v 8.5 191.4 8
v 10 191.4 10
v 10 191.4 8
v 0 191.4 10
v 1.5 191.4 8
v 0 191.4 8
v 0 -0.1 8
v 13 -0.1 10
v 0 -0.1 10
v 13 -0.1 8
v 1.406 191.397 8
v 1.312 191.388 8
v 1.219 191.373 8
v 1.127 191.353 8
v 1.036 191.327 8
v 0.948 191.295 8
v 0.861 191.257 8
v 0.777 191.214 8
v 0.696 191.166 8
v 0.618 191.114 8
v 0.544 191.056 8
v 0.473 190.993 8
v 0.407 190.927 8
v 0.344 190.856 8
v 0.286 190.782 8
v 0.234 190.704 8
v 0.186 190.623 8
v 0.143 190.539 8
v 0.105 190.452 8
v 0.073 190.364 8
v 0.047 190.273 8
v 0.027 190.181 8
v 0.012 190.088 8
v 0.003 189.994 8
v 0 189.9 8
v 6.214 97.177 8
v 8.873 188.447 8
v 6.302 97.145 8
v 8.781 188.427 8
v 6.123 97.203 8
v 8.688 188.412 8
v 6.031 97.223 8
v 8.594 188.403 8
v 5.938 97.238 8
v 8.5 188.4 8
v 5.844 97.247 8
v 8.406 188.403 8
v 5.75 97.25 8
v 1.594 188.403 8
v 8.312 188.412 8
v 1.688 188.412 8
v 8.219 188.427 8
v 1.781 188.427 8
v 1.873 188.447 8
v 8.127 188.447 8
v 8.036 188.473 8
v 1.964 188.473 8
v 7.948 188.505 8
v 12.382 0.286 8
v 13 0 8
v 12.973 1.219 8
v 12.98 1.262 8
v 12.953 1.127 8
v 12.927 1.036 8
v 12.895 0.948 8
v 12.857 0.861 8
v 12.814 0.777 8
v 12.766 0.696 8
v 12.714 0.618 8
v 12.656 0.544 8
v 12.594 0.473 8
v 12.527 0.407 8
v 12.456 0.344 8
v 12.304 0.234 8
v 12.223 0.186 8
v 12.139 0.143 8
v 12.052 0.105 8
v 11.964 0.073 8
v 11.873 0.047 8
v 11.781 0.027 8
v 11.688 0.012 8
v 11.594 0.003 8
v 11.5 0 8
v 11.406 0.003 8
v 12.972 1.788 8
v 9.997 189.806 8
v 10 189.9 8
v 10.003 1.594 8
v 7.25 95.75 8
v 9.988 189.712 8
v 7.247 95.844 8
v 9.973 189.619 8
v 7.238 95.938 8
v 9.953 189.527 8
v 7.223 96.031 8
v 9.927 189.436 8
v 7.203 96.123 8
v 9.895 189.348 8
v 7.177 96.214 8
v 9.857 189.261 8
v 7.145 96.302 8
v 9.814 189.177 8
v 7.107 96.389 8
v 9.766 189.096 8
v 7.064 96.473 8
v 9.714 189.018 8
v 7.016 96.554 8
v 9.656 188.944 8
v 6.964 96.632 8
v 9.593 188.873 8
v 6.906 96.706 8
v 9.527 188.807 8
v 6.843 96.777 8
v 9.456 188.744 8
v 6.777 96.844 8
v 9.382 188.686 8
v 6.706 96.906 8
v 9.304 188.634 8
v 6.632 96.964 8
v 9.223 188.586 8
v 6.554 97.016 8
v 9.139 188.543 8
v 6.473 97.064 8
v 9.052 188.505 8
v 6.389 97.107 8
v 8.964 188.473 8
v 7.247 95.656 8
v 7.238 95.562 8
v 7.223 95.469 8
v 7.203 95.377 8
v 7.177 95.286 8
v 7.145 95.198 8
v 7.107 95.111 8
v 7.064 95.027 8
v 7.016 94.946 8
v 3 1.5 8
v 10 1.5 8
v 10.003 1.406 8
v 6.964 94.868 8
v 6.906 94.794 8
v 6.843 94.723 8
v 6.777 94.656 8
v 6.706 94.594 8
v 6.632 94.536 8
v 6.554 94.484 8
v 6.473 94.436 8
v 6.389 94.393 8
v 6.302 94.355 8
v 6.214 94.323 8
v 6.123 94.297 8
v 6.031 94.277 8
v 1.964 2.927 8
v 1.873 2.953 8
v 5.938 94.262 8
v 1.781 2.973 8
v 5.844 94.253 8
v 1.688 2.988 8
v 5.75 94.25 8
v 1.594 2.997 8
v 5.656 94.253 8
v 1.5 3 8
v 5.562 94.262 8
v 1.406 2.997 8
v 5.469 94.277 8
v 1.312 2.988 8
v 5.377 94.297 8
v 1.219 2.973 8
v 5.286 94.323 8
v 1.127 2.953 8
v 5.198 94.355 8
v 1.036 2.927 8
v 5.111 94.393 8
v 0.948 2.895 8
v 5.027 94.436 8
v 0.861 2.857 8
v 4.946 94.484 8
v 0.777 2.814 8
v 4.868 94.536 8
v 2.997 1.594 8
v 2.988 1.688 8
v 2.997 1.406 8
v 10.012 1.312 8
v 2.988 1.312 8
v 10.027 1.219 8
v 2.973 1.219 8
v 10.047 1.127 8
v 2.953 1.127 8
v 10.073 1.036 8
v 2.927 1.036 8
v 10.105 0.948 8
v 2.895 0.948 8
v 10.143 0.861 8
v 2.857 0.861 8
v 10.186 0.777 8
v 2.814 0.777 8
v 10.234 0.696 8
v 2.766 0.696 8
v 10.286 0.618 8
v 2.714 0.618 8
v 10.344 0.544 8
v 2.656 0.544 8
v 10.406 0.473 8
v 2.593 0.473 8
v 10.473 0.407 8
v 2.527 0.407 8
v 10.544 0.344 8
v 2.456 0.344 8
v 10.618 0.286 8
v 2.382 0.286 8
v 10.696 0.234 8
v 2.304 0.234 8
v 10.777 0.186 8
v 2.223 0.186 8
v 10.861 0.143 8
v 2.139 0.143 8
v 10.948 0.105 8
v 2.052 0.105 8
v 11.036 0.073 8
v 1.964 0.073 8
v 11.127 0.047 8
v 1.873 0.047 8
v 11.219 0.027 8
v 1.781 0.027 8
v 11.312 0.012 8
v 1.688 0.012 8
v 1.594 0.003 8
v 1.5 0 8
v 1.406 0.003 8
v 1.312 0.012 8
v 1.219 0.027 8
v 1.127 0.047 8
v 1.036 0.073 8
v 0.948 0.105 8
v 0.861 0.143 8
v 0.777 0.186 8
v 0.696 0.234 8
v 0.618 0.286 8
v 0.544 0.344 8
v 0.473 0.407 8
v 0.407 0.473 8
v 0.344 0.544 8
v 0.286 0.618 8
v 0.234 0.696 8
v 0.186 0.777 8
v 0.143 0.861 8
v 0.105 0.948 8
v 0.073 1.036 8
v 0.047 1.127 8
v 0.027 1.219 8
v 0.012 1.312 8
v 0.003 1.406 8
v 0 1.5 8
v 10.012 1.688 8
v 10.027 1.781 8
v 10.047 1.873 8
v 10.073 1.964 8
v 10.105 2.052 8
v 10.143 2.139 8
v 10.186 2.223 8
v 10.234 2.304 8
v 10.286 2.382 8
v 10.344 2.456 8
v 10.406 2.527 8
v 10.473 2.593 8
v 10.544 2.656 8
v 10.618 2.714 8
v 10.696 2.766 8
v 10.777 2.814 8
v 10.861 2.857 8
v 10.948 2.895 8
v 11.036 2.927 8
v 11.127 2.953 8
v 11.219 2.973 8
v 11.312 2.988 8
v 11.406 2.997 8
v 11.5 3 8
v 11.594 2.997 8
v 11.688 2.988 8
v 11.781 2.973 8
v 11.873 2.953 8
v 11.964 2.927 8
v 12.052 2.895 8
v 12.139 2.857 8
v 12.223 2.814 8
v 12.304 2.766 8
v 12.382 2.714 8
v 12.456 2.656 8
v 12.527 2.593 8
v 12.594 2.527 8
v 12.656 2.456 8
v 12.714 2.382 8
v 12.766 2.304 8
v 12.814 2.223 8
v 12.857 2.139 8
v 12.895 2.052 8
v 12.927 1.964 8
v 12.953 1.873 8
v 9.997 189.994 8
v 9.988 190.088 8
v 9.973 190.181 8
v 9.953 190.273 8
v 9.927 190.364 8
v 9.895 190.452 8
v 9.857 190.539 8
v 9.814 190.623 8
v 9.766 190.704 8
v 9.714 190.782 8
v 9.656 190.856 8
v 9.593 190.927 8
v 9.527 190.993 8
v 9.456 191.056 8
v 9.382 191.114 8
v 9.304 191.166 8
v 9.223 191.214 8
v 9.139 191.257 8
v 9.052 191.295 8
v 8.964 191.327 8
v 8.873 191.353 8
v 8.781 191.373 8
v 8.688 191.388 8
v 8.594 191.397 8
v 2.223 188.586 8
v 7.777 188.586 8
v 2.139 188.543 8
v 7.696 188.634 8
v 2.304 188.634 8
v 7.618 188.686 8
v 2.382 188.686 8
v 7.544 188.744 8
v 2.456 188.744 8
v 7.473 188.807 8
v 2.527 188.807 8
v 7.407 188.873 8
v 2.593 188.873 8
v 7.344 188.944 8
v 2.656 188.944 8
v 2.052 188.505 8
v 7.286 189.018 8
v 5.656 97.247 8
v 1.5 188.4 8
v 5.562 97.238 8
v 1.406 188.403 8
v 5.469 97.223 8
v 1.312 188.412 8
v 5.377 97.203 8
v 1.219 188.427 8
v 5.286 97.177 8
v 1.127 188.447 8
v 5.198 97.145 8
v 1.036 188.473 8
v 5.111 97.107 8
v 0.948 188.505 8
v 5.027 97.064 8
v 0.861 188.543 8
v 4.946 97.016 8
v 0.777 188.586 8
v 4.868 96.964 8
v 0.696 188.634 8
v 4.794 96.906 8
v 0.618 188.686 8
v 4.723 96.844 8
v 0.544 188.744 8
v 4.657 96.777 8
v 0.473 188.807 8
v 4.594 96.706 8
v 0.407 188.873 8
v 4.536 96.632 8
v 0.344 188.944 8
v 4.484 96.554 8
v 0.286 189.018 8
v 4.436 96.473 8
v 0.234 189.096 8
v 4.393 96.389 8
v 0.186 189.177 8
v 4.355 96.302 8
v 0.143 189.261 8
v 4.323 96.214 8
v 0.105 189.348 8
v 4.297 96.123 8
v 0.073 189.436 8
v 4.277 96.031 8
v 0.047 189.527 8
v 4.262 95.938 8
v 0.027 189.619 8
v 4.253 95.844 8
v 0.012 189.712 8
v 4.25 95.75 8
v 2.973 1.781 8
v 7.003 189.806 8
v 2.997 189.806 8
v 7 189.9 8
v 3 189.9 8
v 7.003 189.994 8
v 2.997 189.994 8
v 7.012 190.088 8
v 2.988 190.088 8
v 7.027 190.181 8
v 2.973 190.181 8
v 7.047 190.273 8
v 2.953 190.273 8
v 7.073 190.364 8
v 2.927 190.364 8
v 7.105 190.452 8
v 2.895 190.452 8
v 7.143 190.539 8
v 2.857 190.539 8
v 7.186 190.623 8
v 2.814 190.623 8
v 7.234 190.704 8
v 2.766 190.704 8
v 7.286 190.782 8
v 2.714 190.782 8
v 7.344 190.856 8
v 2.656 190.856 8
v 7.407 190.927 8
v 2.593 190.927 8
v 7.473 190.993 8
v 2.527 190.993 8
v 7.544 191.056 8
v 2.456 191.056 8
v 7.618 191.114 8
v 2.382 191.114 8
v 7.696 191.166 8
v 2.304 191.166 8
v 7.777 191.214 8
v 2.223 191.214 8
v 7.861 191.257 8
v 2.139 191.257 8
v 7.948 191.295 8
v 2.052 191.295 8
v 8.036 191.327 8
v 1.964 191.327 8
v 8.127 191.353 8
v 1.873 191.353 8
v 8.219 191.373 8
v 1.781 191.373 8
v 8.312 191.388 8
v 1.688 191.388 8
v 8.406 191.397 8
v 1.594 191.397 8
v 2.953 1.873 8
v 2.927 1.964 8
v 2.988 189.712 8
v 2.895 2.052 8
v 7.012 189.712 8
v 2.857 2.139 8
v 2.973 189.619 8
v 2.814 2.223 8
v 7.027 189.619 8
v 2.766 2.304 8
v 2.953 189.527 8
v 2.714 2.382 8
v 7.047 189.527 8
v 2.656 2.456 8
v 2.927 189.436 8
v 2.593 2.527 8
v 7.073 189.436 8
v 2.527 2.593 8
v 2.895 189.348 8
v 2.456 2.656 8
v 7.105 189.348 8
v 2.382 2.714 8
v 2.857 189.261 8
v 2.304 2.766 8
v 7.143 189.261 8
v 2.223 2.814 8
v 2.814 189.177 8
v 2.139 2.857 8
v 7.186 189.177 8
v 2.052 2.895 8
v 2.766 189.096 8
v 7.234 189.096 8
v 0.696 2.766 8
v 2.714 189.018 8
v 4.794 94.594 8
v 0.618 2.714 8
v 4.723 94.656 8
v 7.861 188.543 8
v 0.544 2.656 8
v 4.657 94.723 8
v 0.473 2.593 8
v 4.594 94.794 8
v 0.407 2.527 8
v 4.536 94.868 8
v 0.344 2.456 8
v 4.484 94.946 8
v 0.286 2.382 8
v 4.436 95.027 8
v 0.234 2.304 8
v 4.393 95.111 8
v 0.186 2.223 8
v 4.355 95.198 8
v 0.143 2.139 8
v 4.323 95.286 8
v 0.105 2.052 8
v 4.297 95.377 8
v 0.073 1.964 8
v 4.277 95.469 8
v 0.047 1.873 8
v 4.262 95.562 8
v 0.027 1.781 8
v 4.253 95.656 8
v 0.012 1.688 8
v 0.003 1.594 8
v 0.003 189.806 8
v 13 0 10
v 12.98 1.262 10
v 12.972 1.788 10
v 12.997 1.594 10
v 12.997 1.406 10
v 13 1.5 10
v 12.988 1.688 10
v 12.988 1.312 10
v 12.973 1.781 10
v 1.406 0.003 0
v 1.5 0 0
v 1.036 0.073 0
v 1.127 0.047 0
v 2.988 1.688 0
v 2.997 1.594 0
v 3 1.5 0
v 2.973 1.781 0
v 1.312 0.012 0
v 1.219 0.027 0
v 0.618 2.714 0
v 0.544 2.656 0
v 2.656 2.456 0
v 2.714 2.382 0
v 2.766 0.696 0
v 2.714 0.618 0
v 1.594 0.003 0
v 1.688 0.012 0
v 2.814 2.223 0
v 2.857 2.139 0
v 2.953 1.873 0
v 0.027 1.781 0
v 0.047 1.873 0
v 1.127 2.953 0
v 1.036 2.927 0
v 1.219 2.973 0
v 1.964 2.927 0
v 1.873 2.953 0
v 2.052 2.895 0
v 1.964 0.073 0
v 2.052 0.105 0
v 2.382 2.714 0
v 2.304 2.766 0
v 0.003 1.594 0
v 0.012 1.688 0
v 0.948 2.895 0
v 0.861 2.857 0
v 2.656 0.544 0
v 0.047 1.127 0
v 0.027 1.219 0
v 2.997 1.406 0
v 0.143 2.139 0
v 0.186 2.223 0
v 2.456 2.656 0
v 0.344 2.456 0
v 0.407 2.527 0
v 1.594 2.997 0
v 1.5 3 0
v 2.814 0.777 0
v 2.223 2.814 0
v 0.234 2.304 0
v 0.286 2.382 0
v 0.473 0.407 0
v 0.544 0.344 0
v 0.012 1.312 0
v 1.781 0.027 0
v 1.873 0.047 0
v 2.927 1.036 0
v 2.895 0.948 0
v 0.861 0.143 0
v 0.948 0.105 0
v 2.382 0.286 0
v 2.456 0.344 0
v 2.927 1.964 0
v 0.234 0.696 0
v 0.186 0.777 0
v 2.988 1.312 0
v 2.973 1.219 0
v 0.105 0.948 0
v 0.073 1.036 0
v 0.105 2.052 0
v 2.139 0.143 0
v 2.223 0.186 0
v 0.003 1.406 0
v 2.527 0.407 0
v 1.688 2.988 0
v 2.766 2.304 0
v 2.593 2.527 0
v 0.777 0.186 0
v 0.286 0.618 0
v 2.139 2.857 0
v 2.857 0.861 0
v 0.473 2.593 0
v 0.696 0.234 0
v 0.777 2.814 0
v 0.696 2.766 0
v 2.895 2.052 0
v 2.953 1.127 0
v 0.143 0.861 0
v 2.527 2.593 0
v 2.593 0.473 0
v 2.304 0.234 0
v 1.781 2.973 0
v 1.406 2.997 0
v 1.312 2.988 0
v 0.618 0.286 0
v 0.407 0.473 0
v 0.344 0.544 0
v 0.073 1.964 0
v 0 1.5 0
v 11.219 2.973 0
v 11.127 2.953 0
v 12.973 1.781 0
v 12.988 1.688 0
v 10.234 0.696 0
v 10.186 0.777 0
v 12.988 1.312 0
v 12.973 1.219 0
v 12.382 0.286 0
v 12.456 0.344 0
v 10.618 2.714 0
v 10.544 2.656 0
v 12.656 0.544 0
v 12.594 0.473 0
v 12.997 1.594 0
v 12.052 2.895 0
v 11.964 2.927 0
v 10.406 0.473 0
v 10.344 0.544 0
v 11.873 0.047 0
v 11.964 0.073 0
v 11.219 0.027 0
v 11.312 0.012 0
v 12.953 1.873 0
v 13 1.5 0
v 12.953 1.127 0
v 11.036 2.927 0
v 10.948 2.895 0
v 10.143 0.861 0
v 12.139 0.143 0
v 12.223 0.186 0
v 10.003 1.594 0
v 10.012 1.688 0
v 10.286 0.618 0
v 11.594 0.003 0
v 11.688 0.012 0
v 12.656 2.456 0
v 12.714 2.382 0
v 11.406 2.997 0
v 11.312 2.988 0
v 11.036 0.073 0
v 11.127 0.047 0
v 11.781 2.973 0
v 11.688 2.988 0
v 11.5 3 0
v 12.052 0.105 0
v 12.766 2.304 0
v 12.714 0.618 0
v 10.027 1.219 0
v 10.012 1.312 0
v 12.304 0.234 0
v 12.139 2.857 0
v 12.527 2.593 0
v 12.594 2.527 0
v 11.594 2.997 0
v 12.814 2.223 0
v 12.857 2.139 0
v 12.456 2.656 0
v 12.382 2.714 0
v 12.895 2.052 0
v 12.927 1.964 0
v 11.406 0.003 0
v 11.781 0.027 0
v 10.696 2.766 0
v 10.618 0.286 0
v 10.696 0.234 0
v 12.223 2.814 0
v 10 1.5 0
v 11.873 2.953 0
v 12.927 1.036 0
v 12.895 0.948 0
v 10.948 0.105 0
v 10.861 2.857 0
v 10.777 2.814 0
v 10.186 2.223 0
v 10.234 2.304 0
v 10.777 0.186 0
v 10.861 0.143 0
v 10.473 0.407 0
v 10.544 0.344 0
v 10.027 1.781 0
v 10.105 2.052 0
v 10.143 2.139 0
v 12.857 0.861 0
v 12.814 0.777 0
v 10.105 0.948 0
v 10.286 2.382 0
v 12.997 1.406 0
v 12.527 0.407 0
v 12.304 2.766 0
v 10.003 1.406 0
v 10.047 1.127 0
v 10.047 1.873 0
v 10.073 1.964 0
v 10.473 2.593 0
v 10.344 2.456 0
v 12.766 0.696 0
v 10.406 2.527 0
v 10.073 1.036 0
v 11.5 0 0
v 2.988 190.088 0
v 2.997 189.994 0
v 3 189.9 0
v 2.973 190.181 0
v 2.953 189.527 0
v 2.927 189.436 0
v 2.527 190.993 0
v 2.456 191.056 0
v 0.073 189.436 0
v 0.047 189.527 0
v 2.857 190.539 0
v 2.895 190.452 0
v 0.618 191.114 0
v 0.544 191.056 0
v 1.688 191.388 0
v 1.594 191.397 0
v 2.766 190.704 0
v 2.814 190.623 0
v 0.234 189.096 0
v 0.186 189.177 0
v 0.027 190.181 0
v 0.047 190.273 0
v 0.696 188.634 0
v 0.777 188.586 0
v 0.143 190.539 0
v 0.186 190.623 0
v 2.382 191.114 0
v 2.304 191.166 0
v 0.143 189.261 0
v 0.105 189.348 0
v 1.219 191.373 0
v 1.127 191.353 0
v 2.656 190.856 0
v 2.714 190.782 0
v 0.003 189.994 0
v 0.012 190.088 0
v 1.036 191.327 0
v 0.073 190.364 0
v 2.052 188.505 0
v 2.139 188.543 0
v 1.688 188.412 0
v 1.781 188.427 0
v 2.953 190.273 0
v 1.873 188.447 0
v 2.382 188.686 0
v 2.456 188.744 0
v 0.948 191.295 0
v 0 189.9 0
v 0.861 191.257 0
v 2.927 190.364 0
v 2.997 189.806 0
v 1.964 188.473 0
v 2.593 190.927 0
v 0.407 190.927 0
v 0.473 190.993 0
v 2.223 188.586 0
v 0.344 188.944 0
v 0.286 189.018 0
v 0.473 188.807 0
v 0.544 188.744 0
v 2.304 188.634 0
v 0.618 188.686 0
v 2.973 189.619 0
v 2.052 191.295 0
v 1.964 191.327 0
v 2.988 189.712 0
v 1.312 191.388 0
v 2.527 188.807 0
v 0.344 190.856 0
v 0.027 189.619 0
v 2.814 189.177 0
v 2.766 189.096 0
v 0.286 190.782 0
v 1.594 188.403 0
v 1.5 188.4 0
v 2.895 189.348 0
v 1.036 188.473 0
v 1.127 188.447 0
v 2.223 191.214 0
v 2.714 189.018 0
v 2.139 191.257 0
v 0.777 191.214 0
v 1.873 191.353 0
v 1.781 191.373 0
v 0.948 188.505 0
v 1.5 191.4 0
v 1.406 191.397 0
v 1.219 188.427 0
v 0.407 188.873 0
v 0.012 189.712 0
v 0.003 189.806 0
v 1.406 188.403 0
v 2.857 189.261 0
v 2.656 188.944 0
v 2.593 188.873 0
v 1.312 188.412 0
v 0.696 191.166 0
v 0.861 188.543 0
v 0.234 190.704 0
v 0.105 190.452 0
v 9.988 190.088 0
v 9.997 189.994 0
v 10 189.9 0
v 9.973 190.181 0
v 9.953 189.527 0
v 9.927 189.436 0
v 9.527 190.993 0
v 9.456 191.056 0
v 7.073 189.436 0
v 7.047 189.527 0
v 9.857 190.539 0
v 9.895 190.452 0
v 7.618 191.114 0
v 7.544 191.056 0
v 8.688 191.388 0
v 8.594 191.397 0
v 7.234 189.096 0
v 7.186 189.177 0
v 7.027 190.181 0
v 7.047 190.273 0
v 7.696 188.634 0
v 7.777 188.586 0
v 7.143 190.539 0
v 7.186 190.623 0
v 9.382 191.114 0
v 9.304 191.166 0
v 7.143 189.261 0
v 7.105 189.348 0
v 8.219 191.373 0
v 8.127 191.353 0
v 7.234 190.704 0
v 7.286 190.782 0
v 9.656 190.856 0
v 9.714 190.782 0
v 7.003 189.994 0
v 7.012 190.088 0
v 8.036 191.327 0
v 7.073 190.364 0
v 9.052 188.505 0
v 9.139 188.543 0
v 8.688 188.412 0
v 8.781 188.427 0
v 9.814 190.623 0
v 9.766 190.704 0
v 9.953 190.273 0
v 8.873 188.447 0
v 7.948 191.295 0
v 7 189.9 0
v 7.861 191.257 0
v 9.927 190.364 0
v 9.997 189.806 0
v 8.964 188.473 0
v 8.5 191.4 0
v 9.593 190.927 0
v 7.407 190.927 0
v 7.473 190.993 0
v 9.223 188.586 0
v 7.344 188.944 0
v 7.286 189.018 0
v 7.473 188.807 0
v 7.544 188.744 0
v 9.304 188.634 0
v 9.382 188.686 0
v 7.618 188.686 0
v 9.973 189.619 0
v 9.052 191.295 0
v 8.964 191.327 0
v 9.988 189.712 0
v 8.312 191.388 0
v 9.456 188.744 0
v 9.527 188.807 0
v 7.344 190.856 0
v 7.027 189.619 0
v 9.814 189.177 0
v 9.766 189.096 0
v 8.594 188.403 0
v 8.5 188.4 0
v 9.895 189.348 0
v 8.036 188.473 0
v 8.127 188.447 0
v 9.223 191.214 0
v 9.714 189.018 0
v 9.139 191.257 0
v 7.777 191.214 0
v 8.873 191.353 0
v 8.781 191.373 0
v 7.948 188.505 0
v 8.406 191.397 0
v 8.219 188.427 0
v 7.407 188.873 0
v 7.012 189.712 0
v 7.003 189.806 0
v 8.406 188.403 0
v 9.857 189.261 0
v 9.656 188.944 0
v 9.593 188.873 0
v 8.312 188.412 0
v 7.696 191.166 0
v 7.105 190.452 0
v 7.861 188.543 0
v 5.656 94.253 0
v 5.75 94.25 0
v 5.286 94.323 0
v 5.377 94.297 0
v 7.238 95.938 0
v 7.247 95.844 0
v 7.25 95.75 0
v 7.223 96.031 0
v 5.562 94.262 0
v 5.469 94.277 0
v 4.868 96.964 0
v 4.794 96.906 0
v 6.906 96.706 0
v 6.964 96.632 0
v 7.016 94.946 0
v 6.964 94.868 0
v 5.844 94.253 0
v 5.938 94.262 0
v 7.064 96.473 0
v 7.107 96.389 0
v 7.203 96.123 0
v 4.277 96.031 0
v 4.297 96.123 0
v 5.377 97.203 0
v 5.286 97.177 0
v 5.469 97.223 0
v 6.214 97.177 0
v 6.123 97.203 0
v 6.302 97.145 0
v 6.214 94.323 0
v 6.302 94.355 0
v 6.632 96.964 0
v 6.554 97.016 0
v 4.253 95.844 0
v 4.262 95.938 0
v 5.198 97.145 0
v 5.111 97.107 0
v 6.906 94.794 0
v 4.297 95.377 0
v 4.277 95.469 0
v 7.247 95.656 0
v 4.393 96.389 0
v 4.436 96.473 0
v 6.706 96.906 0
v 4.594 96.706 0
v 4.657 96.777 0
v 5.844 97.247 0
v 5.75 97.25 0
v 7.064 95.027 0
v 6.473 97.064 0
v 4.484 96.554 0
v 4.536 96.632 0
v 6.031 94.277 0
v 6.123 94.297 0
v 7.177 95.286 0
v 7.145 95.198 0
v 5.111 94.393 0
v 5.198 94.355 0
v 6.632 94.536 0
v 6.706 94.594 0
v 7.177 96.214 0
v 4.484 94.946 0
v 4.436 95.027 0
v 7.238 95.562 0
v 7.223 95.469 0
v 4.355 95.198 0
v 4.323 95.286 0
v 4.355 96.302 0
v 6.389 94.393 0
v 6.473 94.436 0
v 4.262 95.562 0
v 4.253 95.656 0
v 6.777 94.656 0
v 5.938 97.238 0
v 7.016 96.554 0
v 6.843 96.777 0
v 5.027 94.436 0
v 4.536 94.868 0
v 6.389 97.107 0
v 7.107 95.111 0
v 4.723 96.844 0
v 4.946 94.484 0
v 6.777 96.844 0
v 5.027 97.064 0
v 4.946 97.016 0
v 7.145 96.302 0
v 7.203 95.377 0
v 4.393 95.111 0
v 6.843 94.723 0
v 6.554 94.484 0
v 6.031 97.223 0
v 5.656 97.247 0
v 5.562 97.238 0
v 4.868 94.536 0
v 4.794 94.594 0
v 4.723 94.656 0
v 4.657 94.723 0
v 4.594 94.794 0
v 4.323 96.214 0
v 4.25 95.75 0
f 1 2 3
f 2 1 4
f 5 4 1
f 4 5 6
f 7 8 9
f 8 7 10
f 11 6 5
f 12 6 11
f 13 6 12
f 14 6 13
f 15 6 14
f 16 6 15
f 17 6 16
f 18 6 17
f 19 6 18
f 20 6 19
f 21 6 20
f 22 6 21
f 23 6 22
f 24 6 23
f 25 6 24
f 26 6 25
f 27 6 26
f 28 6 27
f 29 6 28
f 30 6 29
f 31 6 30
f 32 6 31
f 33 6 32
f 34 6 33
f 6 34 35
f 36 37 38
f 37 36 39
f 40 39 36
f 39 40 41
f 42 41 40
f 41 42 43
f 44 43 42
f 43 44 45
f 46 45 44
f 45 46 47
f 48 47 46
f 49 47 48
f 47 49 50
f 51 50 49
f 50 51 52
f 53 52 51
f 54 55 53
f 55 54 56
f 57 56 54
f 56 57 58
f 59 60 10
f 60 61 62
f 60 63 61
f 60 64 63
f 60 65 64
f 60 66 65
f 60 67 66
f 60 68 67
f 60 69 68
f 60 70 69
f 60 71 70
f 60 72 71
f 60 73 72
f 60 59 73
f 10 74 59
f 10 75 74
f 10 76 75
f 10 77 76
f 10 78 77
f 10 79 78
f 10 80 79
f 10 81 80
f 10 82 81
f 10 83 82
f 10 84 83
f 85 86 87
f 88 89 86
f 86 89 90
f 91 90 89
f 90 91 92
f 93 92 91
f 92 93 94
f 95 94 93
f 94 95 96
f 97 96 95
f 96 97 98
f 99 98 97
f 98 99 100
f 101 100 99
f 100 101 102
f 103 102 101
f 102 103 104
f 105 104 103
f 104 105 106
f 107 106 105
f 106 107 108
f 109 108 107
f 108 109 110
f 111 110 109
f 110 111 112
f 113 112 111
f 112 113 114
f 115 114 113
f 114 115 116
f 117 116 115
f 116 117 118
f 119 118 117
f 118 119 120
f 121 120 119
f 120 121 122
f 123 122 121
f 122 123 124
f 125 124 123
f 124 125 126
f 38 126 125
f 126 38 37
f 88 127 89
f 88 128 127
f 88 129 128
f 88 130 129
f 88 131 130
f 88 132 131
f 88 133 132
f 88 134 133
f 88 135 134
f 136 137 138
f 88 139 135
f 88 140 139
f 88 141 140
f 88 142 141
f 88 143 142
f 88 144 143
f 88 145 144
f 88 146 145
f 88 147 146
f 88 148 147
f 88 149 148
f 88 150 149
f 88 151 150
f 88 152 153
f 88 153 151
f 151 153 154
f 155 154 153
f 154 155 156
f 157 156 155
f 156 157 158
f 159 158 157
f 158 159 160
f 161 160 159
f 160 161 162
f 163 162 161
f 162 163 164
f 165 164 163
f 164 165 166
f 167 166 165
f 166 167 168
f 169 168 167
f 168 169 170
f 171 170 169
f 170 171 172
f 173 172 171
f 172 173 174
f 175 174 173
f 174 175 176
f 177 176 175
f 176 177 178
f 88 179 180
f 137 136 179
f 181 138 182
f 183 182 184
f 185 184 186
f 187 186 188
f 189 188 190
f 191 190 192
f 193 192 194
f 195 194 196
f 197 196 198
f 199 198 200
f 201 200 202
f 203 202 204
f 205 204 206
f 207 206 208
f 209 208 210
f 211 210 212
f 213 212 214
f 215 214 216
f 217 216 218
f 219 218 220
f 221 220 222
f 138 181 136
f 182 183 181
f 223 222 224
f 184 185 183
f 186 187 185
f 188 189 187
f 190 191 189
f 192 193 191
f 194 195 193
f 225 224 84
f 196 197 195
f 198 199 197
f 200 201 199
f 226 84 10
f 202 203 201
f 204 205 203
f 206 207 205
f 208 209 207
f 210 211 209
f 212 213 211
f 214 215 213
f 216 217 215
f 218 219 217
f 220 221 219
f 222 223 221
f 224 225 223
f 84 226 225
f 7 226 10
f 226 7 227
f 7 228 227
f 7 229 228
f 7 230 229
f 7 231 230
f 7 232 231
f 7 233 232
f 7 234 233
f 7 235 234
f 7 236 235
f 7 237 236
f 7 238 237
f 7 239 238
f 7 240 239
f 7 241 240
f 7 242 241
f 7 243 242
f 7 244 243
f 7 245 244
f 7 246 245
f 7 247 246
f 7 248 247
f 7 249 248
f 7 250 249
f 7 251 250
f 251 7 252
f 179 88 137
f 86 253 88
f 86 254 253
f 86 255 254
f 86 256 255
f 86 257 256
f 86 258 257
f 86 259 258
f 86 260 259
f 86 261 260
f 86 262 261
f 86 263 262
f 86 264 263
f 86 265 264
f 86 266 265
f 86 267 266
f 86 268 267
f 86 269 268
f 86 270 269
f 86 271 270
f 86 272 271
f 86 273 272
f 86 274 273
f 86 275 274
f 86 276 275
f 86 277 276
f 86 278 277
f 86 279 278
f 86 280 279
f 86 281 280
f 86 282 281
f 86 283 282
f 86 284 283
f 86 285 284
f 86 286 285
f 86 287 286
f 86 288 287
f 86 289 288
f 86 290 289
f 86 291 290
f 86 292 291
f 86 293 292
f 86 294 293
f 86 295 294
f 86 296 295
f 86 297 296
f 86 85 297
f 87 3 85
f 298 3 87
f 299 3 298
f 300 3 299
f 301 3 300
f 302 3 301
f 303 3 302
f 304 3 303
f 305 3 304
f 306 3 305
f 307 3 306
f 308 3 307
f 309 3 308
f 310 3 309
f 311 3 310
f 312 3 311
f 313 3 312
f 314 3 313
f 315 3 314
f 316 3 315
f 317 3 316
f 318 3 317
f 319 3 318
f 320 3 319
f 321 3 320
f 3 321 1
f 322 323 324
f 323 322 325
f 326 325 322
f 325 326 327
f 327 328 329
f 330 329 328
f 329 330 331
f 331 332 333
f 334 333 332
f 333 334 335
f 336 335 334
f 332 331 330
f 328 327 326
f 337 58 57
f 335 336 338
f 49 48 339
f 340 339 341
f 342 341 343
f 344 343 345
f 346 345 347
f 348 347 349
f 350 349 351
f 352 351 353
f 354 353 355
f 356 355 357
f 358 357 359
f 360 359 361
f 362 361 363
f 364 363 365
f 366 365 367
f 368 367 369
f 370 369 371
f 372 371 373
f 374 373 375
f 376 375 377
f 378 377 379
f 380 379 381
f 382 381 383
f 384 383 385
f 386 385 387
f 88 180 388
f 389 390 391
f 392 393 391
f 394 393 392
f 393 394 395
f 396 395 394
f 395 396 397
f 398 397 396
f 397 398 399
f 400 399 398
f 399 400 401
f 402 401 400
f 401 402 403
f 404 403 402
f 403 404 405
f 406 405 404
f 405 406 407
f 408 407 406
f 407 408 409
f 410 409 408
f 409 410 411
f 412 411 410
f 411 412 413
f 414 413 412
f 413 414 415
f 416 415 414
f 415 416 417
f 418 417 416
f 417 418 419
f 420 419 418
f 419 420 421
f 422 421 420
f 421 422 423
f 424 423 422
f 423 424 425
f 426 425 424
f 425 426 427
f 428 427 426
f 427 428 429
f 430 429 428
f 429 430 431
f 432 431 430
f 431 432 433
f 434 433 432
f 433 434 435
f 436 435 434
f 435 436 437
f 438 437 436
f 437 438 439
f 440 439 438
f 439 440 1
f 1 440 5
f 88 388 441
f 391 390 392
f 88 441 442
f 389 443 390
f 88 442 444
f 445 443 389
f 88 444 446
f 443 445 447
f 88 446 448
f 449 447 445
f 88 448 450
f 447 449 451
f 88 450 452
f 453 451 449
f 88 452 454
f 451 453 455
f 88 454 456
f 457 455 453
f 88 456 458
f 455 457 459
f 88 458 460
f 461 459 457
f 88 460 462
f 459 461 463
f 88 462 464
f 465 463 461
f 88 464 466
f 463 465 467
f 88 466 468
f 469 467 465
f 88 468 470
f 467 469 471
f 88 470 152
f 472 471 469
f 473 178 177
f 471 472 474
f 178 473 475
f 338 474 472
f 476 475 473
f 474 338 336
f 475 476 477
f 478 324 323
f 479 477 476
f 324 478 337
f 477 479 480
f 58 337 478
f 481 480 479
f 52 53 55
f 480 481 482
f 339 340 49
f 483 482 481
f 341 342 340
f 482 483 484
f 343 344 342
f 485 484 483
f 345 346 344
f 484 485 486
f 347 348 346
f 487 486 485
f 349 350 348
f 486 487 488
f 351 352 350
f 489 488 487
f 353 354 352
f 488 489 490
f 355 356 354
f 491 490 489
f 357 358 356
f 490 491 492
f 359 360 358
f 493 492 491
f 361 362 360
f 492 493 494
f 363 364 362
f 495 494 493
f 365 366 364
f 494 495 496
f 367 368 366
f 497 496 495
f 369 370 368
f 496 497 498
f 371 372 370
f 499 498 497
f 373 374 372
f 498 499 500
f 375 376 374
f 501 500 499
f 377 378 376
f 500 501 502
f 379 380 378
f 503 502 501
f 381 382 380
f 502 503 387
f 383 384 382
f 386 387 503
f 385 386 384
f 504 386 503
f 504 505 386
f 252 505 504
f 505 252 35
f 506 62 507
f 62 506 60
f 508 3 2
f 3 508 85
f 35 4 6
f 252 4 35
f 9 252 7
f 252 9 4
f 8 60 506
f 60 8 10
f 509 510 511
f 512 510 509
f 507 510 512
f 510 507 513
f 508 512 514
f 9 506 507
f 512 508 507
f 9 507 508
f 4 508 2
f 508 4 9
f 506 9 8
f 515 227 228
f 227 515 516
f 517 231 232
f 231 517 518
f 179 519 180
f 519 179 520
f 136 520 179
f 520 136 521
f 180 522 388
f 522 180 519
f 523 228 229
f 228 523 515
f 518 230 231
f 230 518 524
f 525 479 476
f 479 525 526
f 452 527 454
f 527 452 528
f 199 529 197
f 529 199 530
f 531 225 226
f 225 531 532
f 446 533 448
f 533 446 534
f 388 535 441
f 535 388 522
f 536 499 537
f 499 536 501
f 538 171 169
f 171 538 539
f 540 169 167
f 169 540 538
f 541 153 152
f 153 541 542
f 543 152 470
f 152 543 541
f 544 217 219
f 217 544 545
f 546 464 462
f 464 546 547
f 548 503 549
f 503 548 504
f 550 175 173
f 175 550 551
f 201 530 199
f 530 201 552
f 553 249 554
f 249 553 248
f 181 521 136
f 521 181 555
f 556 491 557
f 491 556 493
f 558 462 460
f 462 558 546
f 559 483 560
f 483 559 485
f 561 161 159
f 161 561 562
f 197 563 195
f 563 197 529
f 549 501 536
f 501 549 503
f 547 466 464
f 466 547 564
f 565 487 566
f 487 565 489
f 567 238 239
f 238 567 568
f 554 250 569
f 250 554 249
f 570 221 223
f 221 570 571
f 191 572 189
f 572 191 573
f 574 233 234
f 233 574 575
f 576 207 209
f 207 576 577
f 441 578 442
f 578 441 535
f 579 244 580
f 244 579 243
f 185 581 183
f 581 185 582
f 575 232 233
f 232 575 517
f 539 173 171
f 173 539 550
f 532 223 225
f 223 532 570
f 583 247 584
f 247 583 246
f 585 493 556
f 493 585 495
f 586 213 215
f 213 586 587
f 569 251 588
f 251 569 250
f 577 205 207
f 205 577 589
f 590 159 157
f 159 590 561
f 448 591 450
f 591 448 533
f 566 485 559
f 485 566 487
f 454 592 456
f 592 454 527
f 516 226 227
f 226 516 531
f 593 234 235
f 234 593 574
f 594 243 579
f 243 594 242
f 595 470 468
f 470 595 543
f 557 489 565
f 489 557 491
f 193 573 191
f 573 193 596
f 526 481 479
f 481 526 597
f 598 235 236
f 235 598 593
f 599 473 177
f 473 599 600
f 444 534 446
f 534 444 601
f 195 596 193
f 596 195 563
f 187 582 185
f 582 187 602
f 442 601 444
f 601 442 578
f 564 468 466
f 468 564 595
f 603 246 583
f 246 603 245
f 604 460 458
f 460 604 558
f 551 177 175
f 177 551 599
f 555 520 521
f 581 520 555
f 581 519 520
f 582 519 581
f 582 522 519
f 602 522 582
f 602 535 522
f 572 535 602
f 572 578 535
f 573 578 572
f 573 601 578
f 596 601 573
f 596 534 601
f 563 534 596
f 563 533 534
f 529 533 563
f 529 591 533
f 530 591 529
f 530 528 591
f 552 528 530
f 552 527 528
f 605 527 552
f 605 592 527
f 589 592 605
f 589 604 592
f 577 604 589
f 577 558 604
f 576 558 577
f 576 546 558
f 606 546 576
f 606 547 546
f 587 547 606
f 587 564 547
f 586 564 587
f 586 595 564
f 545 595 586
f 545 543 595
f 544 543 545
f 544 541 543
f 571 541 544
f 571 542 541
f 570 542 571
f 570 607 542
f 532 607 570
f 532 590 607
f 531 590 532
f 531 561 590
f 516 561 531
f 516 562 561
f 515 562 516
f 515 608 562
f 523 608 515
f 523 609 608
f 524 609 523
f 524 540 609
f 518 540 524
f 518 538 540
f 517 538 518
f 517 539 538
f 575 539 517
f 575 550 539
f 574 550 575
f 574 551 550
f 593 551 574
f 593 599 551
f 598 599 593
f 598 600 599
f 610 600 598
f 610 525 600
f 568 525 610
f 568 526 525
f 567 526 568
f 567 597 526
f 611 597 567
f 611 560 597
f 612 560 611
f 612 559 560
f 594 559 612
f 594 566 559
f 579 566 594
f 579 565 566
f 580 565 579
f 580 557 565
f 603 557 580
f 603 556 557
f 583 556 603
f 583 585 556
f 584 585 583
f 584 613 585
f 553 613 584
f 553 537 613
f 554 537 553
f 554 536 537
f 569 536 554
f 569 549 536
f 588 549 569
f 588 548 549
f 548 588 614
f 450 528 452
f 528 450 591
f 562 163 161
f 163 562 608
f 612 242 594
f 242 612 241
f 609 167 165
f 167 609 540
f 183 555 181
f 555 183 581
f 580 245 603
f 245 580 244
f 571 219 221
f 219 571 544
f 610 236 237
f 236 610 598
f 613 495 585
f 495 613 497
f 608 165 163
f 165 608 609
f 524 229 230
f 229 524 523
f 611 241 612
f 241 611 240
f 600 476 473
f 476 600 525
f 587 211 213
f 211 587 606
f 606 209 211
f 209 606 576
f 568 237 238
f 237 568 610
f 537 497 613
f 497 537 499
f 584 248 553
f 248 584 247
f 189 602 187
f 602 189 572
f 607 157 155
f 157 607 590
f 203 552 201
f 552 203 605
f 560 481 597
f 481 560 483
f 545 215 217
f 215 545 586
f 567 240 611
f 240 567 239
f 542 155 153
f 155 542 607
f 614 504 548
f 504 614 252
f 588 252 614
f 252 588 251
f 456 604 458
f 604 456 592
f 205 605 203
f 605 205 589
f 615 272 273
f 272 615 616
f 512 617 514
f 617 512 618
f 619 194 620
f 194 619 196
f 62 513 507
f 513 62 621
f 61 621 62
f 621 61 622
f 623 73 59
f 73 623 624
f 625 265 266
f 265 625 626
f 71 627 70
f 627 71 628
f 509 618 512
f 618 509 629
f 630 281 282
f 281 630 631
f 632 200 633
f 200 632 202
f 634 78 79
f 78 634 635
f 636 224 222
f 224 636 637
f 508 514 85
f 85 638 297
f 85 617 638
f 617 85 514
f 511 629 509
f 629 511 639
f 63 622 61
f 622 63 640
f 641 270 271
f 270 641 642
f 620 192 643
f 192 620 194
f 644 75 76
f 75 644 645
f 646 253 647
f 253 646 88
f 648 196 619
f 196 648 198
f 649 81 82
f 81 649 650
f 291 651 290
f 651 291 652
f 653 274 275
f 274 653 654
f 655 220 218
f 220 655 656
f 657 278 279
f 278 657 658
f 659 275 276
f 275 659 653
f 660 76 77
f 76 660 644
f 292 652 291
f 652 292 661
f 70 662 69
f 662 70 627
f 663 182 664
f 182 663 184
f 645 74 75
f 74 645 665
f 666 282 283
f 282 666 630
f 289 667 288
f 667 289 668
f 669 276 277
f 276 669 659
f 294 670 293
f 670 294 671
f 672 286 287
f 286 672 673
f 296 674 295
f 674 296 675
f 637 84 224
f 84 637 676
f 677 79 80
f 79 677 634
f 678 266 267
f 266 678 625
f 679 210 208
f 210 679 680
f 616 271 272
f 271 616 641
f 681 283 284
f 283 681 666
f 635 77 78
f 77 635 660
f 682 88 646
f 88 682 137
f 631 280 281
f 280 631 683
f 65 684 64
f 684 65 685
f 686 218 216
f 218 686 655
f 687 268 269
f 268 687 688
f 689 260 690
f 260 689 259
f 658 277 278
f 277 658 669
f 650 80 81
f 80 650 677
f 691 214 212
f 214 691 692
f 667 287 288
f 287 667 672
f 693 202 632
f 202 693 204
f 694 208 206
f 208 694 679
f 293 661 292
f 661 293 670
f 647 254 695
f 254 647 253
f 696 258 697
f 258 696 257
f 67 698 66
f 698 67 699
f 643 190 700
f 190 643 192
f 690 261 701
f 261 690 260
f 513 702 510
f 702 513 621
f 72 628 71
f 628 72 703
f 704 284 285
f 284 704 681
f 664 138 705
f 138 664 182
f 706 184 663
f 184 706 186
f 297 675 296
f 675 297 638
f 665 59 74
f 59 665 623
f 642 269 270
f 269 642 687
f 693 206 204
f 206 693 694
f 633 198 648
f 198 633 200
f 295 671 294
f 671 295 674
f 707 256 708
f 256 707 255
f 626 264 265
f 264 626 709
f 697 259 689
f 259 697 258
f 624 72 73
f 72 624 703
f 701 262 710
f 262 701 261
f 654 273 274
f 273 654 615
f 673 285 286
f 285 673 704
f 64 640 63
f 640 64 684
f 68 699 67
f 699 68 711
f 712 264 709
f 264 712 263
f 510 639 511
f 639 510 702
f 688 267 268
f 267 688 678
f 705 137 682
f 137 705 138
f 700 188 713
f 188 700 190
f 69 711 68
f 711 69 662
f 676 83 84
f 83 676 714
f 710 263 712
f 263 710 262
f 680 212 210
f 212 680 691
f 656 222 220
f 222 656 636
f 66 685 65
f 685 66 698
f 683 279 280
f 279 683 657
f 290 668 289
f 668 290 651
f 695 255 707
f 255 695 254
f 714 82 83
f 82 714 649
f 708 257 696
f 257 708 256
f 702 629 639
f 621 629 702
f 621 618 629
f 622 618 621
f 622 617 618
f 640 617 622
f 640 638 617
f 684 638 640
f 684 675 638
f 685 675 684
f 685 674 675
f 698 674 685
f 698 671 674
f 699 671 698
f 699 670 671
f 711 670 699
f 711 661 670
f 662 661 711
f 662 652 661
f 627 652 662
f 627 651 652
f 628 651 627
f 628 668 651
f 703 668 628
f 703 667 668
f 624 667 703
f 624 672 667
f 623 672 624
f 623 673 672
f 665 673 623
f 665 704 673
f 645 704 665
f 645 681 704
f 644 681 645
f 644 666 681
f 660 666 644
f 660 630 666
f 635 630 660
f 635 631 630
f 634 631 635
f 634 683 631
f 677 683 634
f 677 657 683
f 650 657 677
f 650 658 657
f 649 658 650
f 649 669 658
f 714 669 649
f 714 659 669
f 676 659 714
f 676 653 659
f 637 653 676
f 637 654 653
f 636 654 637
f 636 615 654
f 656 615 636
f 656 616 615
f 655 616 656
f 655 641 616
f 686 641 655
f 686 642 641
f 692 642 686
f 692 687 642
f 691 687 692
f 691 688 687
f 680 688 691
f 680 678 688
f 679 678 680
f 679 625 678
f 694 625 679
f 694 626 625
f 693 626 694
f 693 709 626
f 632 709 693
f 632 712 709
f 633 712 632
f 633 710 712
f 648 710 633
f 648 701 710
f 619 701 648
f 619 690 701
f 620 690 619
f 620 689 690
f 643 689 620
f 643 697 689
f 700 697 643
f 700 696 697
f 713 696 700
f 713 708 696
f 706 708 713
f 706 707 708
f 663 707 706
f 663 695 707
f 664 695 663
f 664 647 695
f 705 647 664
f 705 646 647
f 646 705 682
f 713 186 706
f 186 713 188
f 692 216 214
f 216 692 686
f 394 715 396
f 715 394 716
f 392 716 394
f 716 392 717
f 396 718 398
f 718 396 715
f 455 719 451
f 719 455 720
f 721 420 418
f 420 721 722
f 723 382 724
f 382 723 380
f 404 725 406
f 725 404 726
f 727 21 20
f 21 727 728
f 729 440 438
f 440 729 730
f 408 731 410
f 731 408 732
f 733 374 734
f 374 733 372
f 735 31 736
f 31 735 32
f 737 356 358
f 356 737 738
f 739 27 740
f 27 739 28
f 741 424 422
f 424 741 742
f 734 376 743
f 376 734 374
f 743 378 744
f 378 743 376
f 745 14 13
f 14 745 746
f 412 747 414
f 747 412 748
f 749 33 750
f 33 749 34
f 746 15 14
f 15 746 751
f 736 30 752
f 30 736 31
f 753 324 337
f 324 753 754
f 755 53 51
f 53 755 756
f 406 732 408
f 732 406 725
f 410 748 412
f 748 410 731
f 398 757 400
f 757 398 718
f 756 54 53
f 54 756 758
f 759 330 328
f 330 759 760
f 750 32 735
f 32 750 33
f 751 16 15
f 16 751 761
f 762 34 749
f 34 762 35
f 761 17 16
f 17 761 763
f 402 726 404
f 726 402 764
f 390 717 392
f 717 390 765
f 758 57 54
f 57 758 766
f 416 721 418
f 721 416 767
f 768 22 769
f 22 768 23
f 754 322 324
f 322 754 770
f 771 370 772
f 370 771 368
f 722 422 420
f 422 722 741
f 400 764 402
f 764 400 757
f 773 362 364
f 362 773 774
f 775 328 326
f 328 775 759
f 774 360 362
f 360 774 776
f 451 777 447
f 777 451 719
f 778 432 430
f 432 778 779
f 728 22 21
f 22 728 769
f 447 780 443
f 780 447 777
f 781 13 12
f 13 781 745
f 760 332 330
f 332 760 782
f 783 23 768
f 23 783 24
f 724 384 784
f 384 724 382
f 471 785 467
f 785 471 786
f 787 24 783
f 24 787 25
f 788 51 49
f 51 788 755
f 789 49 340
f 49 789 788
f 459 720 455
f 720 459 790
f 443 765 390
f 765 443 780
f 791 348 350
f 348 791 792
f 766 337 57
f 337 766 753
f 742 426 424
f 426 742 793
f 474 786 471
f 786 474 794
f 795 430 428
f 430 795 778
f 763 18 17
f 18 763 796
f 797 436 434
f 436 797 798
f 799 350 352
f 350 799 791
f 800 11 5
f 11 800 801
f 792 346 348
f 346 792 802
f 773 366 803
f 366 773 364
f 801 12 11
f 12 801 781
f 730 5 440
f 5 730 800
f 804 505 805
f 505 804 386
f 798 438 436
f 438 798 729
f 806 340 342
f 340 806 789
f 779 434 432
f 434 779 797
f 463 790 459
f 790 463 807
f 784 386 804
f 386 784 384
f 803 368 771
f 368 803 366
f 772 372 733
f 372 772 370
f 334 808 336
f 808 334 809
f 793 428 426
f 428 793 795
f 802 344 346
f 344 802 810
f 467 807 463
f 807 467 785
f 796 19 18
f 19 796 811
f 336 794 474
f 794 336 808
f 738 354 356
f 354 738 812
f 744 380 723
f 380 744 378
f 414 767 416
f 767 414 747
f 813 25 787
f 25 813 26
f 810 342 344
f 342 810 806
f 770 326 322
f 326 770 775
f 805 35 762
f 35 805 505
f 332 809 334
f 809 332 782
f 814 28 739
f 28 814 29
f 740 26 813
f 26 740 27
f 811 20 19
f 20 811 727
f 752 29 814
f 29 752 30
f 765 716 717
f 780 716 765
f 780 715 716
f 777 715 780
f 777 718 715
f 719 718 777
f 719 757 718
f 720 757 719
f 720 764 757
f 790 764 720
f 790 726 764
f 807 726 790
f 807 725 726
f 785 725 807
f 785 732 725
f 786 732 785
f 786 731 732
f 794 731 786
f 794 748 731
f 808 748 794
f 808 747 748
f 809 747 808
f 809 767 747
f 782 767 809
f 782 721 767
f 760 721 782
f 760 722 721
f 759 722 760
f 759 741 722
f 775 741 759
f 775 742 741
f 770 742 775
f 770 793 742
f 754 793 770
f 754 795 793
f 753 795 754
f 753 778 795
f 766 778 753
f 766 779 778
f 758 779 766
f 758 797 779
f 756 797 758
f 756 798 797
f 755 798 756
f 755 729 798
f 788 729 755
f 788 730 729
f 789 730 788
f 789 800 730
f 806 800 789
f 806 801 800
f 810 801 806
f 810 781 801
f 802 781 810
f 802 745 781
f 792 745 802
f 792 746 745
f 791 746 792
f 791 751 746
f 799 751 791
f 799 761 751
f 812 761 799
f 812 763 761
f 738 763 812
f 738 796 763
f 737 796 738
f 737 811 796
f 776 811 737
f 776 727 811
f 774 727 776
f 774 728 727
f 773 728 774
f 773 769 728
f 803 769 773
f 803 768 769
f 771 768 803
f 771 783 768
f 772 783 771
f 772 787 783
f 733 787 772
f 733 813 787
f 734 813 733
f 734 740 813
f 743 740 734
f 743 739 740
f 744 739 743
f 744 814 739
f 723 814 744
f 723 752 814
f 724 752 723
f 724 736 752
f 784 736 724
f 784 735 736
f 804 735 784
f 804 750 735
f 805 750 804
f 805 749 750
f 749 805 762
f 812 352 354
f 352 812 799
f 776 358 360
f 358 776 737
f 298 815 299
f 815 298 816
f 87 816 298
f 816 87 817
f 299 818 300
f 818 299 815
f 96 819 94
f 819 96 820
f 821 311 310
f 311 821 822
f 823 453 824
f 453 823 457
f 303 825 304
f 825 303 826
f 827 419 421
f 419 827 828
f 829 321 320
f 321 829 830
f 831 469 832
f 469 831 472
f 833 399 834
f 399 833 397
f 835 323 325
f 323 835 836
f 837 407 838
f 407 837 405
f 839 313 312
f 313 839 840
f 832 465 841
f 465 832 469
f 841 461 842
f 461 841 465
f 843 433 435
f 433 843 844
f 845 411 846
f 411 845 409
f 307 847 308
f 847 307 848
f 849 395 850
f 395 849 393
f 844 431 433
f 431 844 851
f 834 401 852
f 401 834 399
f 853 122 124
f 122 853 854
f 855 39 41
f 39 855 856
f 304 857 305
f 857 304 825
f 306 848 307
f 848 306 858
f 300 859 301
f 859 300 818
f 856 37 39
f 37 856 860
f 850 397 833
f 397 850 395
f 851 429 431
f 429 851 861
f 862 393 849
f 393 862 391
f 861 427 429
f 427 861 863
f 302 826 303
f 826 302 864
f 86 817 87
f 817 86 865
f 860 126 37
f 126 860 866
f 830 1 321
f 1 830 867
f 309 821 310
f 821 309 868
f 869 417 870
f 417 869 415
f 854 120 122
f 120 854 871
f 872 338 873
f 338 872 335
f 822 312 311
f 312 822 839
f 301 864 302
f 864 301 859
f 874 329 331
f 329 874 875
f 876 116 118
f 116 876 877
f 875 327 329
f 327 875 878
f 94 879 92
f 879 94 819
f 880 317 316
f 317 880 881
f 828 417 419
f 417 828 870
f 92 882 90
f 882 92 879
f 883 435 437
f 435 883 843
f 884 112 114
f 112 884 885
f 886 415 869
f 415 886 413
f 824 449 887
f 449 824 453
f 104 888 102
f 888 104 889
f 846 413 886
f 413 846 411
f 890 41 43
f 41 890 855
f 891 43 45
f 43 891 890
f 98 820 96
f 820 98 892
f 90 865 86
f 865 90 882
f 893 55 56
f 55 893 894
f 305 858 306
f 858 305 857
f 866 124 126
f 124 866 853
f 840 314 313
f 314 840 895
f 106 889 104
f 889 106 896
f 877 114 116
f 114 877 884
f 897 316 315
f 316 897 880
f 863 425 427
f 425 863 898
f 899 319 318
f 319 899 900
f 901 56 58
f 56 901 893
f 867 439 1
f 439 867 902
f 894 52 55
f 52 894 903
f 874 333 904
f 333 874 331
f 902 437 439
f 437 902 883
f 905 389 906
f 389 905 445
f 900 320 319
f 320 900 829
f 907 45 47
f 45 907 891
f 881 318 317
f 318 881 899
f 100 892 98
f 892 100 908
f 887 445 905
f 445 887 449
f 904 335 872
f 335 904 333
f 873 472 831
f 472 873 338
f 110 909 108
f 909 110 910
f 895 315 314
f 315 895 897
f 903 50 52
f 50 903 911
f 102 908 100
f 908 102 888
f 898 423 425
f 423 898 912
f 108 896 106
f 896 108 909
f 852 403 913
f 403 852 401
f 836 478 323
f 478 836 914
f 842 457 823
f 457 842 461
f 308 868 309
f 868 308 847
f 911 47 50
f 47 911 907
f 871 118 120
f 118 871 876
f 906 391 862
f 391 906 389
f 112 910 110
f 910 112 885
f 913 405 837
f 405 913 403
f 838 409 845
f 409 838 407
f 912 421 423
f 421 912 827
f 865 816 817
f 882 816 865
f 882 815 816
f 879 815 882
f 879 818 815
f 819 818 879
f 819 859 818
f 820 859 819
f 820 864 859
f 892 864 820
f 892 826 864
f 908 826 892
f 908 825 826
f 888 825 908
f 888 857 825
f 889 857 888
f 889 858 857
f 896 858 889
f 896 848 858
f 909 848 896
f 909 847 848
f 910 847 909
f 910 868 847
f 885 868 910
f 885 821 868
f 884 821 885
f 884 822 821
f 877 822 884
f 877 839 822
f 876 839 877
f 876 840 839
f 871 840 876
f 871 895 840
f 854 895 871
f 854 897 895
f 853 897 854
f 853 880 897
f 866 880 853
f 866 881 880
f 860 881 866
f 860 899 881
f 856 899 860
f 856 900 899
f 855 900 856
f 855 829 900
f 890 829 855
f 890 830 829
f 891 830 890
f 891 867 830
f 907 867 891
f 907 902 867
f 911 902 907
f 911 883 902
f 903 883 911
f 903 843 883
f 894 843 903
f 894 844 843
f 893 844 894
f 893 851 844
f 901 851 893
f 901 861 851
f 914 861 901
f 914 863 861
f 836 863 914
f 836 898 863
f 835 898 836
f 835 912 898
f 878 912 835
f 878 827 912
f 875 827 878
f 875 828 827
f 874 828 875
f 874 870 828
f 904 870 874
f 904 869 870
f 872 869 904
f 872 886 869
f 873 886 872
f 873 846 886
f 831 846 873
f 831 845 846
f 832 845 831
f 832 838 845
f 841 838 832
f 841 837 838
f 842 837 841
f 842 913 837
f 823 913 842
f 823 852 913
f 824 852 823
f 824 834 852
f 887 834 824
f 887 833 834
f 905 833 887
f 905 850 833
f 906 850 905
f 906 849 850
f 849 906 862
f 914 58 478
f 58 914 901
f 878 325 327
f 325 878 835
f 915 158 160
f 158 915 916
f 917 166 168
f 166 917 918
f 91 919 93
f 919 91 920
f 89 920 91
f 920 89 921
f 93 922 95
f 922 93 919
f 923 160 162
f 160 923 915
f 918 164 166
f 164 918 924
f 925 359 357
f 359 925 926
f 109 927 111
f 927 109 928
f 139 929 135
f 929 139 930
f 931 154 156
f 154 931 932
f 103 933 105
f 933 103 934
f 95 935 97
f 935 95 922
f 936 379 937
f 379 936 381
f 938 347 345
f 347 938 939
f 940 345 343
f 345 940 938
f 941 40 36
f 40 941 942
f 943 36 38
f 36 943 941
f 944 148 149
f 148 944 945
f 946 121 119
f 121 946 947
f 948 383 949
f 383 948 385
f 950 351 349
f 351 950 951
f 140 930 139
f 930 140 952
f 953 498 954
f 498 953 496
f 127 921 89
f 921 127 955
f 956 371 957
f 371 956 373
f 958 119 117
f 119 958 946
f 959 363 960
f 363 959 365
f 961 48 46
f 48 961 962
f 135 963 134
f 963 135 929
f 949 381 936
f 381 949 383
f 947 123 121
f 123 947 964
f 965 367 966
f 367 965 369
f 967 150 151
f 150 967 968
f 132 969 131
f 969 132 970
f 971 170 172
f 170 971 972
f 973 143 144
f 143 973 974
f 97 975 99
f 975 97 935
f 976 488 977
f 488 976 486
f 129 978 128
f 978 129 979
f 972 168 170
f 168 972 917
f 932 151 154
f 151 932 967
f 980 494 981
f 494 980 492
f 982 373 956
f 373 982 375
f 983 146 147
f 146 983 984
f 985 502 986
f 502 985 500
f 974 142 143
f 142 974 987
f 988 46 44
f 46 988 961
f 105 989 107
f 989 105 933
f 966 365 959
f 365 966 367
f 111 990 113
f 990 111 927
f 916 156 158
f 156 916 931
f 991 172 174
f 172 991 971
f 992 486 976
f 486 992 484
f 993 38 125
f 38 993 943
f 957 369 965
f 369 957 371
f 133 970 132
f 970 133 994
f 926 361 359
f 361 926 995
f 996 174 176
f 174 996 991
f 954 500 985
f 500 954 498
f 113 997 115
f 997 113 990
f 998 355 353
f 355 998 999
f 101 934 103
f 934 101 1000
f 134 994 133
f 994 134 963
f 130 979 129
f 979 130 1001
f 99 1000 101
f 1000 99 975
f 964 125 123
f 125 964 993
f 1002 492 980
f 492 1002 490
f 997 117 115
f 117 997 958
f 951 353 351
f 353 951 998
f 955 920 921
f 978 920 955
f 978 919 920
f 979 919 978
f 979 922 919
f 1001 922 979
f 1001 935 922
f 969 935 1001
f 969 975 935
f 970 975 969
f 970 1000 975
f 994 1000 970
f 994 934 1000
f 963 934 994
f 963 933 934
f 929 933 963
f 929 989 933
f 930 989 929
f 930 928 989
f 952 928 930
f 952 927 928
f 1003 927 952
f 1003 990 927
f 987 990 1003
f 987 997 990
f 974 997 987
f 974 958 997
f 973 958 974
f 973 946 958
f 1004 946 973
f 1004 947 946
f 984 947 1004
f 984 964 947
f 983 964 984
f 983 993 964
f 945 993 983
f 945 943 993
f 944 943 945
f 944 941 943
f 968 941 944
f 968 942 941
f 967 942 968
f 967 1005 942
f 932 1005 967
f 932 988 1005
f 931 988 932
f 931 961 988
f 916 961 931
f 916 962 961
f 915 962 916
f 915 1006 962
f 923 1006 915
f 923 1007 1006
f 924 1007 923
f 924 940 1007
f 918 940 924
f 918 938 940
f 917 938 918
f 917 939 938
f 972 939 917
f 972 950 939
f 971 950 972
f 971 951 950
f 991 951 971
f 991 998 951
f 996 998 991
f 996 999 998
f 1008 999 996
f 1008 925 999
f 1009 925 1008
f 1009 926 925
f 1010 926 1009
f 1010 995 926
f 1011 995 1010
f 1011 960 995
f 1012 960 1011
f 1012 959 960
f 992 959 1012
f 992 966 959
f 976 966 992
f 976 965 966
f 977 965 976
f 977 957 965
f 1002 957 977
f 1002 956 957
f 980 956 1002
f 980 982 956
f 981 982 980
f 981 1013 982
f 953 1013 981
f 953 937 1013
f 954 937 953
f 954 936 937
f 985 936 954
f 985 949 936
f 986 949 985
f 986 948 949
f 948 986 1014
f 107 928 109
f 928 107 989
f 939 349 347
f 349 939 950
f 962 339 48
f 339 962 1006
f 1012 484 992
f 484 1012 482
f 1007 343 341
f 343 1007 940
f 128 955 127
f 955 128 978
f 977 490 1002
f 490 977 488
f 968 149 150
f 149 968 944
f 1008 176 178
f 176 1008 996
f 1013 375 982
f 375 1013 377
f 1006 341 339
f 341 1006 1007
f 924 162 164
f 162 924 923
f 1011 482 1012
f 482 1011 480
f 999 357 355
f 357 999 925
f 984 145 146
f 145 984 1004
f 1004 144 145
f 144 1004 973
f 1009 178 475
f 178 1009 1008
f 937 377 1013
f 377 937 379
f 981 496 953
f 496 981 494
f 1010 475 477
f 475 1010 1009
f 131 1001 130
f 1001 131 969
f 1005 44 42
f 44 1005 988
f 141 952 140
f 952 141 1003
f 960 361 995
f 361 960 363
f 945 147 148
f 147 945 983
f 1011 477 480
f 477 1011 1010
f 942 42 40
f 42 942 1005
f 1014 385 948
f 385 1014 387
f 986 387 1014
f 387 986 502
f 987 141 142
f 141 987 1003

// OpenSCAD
//approximation of the ends
$fn=100;
length=191.5;
height=10;
topDepth=2;
end1W=13;
end2W=10;
wiggle=.1;
legD=3;
legR=legD/2;
translate([0,0,height-topDepth]) hull(){
    rotate([90,0,0]) cube([end1W,topDepth,wiggle]);
    translate([0,length-wiggle,0]) rotate([90,0,0]) cube([end2W,topDepth,wiggle]);
}

//end1
translate([legR,legR,0]) cylinder(h=height,r=legR);
translate([end1W-legR,legR,0]) cylinder(h=height,r=legR);

//end2
translate([legR,length-legR-wiggle,0]) cylinder(h=height,r=legR);
translate([end2W-legR,length-legR-wiggle,0]) cylinder(h=height,r=legR);

//middle
translate([((end2W+end1W)/2)/2,length/2,0]) cylinder(h=height,r=legR);
